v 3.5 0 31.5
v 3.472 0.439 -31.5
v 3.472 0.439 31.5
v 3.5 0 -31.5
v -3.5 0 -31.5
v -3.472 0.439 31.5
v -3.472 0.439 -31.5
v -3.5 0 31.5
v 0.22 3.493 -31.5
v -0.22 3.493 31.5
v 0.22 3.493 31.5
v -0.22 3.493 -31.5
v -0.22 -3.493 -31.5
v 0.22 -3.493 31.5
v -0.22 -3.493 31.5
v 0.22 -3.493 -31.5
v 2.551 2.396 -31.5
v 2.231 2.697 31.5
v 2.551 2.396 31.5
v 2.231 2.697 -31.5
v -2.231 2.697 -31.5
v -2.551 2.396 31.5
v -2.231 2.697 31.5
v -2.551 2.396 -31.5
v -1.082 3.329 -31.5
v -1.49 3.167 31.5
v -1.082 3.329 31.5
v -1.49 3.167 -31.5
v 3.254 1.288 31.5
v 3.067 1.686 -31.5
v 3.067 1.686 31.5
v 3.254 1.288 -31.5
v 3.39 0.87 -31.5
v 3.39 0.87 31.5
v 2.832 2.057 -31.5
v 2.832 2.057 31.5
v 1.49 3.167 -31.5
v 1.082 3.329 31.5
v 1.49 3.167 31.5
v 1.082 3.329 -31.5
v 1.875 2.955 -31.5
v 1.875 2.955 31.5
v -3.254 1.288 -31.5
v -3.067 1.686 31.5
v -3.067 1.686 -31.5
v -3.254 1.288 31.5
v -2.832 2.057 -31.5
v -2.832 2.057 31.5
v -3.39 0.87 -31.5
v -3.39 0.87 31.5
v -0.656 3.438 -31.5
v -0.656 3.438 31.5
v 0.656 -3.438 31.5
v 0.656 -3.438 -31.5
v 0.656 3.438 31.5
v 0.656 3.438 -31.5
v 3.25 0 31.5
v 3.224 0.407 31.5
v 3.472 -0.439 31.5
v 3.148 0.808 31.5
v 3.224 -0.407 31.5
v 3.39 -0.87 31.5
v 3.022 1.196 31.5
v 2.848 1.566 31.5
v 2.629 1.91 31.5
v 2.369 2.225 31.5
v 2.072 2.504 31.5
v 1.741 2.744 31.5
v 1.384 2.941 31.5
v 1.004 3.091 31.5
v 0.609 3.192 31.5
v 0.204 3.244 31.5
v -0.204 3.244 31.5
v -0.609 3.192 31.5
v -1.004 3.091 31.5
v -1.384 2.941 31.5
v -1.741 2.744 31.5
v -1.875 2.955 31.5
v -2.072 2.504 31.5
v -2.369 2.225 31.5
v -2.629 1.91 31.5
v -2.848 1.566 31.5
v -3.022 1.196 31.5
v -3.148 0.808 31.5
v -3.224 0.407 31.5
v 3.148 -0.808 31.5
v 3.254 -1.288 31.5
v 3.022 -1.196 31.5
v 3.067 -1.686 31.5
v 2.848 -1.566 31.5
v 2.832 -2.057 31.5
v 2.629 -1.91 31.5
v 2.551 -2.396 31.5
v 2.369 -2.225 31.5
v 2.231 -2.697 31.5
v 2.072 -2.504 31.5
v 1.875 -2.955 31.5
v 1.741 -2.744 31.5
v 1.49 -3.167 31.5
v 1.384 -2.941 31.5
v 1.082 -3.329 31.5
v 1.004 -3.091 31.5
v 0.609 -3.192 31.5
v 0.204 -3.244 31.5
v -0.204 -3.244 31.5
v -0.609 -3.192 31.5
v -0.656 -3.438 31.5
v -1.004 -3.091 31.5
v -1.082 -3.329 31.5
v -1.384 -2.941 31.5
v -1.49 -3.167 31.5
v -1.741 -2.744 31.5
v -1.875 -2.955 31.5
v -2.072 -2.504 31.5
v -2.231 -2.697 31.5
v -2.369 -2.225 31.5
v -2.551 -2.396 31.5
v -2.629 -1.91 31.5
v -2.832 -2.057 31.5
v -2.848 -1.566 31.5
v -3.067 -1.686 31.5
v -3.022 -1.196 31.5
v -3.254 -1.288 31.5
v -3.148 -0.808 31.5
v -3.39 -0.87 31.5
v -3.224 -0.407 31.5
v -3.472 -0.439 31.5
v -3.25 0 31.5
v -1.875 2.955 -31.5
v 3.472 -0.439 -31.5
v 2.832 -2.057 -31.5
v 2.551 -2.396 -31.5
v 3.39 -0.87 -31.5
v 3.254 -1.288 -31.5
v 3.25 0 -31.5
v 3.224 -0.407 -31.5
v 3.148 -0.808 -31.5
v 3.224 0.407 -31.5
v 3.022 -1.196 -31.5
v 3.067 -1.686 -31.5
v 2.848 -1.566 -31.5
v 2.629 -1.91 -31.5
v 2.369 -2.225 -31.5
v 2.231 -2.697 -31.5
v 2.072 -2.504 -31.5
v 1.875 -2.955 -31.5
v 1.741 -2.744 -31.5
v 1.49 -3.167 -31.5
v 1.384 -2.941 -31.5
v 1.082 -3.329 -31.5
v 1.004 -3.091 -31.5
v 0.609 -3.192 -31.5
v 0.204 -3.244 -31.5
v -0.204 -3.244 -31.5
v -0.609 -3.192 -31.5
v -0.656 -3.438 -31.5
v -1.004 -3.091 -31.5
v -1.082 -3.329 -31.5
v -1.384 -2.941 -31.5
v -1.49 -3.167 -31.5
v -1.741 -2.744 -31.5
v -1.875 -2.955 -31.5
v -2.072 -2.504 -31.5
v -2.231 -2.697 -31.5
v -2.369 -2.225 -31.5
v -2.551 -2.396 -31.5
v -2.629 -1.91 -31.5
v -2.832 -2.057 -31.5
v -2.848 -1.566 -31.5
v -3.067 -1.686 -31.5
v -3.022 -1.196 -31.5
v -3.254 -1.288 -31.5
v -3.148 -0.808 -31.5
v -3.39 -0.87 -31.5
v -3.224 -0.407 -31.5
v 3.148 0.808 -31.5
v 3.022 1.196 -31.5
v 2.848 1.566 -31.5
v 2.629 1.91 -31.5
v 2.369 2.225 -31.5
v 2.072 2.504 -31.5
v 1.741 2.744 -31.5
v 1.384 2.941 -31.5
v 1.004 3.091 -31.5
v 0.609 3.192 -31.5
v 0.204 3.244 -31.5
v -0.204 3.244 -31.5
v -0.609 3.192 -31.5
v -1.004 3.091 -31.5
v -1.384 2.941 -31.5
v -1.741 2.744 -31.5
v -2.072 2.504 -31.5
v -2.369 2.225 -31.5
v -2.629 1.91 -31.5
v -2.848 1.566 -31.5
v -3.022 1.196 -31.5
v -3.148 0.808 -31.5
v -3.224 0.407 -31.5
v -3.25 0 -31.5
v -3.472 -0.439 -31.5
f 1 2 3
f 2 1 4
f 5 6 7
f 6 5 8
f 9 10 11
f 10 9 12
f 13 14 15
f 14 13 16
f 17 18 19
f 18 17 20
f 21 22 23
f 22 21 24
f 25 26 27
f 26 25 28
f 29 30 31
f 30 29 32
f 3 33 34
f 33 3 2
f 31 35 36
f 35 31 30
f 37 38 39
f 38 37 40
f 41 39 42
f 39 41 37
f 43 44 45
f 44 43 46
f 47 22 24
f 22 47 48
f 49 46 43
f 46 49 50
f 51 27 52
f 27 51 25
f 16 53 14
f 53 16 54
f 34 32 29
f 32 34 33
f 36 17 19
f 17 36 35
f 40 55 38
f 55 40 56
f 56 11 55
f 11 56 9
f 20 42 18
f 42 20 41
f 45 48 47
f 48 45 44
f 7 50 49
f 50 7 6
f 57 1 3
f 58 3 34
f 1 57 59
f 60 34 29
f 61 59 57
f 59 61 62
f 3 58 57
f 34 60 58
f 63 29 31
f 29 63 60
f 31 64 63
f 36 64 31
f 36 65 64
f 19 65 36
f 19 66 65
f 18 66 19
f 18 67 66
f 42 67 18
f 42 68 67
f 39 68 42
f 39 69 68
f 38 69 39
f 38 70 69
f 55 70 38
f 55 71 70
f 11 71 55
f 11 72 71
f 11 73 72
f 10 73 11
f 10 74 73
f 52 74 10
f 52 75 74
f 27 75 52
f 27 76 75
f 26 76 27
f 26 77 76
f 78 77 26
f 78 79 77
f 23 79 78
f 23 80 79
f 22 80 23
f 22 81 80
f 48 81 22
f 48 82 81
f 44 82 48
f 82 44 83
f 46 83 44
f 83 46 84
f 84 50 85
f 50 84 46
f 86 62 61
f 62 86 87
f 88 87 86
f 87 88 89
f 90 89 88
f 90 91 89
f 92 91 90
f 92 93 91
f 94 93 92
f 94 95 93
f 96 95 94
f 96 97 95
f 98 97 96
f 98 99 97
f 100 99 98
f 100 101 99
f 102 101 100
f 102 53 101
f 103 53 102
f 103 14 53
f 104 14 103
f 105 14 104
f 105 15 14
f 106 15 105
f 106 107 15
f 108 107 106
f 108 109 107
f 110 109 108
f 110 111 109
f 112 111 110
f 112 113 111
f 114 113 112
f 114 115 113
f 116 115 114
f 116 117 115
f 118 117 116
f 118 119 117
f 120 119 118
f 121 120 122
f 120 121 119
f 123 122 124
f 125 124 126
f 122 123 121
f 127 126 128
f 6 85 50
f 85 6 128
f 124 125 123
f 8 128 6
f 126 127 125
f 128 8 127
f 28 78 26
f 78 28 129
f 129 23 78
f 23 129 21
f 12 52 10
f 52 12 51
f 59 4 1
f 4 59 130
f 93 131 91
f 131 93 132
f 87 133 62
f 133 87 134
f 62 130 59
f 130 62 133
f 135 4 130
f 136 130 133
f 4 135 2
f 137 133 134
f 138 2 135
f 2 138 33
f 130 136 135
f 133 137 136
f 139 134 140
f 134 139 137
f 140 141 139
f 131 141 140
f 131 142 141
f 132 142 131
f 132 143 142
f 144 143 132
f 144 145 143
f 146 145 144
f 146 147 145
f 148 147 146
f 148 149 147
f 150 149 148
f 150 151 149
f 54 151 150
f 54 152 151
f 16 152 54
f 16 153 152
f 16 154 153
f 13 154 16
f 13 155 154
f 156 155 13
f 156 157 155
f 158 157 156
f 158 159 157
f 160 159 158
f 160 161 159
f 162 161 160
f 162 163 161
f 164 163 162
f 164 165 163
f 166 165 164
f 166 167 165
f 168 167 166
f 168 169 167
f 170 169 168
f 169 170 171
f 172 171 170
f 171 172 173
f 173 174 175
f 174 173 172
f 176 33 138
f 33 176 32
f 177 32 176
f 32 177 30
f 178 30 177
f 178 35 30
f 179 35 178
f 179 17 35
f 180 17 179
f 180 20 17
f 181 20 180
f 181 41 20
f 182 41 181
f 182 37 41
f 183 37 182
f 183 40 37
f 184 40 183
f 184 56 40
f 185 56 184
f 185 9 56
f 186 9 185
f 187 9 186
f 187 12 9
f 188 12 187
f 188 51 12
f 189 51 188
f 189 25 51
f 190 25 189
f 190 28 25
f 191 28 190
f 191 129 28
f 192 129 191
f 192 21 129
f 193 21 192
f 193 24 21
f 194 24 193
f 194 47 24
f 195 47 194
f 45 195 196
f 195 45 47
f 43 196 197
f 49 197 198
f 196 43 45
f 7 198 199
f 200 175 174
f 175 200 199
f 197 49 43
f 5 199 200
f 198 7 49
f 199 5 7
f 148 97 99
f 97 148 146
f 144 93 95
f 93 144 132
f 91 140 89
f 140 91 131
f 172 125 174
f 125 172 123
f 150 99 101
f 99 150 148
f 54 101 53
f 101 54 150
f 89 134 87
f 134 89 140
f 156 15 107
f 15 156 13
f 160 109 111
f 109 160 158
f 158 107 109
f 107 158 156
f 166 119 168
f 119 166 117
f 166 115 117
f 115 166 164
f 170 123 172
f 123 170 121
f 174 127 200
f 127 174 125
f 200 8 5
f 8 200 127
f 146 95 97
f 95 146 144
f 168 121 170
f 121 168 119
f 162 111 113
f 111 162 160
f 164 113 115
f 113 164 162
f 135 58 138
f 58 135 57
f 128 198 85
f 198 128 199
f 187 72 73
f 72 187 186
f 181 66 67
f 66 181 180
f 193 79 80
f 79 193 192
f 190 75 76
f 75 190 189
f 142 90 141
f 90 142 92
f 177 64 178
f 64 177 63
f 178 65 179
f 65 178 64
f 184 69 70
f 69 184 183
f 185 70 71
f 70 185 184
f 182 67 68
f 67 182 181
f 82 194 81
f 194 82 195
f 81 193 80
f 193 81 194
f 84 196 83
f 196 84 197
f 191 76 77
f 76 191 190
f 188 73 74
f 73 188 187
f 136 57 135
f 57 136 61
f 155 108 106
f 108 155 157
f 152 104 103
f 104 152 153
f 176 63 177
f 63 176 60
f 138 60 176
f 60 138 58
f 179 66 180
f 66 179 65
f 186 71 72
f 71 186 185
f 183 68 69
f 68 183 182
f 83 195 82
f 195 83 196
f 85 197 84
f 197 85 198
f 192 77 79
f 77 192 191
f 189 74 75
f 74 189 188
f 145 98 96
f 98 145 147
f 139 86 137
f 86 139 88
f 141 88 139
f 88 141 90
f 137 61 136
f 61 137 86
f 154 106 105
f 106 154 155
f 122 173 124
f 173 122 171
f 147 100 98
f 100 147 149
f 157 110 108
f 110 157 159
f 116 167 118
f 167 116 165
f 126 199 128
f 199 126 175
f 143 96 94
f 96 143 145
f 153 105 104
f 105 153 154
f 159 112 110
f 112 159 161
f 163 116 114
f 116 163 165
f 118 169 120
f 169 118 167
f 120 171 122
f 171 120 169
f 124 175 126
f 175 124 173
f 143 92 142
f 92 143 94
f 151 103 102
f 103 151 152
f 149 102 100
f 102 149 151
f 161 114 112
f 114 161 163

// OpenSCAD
$fn = 50;


difference() {
	union() {
		translate(v = [0, 0, -31.5000000000]) {
			cylinder(h = 63, r = 3.5000000000);
		}
	}
	union() {
		translate(v = [0, 0, -100.0000000000]) {
			cylinder(h = 200, r = 3.2500000000);
		}
	}
}
